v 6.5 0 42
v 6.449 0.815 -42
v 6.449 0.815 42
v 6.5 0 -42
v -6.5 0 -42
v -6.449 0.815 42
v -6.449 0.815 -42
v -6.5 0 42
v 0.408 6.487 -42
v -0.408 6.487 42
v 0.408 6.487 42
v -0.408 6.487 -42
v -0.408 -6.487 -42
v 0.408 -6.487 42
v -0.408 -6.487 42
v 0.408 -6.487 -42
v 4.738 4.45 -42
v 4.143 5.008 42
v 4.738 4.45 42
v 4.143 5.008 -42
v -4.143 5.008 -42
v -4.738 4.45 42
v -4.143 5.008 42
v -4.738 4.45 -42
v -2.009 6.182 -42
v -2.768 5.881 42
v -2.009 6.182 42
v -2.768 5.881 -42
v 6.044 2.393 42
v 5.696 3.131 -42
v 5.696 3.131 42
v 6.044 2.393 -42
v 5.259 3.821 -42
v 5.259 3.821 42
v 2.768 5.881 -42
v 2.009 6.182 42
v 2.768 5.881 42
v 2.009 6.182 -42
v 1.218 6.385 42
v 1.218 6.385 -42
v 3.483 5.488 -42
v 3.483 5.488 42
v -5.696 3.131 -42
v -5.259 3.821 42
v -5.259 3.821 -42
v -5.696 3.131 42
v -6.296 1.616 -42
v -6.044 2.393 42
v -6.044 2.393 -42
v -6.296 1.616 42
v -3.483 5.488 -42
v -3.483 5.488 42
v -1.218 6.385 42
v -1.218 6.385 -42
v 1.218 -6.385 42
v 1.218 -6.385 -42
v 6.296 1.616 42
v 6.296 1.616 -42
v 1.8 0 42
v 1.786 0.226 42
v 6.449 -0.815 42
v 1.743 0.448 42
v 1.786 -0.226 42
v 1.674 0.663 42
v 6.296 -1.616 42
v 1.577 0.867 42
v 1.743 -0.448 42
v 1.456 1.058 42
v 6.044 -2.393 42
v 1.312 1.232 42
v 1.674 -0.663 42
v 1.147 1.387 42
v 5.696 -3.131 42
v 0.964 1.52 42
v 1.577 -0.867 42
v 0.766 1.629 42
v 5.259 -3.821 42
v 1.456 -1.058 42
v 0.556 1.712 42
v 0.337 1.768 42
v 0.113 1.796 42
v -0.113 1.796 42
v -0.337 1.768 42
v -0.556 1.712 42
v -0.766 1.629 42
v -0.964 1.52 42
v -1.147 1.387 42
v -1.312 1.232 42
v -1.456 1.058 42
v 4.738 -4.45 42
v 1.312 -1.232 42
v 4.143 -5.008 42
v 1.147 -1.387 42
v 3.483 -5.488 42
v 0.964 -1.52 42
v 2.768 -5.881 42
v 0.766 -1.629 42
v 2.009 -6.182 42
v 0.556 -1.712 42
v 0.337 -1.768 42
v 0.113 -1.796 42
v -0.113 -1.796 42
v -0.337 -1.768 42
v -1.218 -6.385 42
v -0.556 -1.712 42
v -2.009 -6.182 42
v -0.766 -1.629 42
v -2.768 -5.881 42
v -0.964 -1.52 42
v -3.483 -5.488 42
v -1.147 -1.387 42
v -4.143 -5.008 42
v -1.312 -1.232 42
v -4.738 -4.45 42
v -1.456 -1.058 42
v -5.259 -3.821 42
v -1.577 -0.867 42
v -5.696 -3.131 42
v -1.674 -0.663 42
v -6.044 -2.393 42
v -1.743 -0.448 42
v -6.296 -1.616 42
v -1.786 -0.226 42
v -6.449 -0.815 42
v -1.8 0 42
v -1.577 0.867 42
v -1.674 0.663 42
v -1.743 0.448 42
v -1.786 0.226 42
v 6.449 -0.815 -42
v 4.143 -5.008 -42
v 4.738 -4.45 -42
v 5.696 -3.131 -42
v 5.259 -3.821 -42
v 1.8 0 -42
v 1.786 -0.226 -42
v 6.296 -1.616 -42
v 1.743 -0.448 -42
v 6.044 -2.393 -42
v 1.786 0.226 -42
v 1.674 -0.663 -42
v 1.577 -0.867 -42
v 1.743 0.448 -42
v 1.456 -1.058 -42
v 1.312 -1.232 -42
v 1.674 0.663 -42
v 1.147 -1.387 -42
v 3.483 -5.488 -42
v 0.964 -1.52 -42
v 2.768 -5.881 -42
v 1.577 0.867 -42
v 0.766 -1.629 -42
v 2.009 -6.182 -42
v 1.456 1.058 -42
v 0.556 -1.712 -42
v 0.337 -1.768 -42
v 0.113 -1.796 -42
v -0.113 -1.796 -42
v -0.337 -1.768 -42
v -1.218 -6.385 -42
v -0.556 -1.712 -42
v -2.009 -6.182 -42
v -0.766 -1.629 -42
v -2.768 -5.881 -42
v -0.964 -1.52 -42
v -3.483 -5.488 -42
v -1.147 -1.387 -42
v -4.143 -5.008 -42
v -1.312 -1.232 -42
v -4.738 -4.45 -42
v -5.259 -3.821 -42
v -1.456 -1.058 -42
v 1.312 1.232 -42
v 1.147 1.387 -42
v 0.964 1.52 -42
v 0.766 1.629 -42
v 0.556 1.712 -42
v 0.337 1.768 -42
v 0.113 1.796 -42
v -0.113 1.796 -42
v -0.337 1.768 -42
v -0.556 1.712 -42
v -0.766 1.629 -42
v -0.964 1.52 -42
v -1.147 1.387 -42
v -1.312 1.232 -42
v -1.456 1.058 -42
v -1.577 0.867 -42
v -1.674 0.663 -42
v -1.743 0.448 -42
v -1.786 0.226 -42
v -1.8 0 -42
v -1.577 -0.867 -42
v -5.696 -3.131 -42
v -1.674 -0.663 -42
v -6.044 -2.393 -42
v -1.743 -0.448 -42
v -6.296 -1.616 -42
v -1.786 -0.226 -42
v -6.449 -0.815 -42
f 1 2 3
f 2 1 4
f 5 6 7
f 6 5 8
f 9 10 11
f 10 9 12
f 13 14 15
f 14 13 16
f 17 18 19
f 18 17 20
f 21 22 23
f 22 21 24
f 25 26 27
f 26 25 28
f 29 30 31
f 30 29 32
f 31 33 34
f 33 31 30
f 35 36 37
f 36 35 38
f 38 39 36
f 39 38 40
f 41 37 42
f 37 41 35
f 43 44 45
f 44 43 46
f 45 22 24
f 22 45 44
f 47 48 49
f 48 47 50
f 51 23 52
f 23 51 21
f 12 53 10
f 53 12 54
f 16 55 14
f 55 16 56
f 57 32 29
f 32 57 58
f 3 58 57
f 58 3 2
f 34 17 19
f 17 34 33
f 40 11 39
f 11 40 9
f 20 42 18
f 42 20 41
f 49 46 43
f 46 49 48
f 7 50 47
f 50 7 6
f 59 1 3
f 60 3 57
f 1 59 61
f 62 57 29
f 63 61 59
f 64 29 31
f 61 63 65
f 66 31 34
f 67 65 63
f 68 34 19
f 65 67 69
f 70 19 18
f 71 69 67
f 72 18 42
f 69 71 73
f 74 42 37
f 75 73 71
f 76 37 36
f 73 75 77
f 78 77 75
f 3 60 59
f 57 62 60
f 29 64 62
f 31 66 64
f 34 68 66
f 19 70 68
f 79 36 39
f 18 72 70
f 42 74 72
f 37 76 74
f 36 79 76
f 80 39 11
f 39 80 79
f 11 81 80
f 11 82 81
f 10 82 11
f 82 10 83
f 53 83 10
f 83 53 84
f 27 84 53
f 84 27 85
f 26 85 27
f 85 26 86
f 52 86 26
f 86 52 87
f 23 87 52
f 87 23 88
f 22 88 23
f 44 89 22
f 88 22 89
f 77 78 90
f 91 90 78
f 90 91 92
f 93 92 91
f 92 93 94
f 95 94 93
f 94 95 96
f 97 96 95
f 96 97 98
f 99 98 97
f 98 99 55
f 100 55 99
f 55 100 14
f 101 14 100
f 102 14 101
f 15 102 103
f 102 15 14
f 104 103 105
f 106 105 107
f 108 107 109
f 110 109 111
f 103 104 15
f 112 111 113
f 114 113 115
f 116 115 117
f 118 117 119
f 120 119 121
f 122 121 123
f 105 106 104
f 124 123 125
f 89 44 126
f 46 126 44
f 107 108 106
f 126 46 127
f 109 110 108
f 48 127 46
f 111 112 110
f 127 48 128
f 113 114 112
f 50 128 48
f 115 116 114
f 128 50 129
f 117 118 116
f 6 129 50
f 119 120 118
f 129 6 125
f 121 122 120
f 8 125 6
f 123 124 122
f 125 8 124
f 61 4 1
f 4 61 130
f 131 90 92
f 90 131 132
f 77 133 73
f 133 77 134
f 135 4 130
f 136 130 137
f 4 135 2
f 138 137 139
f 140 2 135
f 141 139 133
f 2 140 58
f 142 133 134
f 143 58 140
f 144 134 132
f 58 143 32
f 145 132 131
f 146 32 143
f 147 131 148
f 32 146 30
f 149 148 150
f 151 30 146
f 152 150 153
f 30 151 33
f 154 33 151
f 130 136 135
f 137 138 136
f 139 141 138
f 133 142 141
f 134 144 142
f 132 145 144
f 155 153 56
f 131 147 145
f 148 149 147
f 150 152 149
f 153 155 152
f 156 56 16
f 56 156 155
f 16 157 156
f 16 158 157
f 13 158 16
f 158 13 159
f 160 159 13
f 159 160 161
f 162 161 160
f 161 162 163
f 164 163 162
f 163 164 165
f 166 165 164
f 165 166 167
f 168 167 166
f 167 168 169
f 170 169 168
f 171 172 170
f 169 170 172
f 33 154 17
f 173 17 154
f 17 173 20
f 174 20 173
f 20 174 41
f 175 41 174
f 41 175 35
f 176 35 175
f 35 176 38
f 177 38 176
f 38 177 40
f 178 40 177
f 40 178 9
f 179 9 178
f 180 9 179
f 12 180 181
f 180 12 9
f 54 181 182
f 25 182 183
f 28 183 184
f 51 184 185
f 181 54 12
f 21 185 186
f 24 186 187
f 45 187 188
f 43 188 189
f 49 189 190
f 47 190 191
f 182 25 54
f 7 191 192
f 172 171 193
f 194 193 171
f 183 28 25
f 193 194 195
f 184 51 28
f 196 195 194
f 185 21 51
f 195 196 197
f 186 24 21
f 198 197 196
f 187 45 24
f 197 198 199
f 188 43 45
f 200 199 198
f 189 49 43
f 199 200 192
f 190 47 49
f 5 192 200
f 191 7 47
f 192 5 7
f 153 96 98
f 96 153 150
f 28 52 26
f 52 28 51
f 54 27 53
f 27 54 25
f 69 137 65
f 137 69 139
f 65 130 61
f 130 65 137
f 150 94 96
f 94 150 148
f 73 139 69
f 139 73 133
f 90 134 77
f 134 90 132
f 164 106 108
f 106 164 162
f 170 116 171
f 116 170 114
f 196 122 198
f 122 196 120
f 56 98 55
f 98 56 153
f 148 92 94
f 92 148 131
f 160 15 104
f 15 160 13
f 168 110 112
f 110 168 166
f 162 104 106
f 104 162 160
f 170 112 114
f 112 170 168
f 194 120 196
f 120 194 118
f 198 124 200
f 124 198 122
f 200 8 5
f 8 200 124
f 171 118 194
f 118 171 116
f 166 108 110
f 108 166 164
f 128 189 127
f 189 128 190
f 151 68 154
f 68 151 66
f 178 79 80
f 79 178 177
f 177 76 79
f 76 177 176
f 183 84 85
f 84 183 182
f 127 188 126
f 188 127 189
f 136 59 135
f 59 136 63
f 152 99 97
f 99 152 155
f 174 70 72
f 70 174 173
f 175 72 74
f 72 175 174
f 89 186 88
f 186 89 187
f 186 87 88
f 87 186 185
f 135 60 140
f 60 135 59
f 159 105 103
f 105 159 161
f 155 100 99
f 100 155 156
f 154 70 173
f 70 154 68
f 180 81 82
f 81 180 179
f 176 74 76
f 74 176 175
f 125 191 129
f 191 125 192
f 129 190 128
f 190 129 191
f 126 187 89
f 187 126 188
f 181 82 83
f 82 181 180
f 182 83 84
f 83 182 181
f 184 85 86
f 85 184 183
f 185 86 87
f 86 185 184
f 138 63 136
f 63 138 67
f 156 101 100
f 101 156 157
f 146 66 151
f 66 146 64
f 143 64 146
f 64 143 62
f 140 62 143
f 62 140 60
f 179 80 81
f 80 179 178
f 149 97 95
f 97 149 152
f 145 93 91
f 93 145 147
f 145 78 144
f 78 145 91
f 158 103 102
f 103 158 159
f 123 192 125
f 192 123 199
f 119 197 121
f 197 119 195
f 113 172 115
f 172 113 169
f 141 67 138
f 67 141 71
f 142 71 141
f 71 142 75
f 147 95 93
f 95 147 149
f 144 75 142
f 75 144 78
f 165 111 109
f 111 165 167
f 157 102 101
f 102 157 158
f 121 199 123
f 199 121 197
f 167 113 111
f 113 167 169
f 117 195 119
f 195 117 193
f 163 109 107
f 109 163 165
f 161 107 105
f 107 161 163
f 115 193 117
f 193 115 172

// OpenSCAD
$fn = 50;


difference() {
	union() {
		translate(v = [0, 0, -42.0000000000]) {
			cylinder(h = 84, r = 6.5000000000);
		}
	}
	union() {
		translate(v = [0, 0, -100.0000000000]) {
			cylinder(h = 200, r = 1.8000000000);
		}
	}
}
